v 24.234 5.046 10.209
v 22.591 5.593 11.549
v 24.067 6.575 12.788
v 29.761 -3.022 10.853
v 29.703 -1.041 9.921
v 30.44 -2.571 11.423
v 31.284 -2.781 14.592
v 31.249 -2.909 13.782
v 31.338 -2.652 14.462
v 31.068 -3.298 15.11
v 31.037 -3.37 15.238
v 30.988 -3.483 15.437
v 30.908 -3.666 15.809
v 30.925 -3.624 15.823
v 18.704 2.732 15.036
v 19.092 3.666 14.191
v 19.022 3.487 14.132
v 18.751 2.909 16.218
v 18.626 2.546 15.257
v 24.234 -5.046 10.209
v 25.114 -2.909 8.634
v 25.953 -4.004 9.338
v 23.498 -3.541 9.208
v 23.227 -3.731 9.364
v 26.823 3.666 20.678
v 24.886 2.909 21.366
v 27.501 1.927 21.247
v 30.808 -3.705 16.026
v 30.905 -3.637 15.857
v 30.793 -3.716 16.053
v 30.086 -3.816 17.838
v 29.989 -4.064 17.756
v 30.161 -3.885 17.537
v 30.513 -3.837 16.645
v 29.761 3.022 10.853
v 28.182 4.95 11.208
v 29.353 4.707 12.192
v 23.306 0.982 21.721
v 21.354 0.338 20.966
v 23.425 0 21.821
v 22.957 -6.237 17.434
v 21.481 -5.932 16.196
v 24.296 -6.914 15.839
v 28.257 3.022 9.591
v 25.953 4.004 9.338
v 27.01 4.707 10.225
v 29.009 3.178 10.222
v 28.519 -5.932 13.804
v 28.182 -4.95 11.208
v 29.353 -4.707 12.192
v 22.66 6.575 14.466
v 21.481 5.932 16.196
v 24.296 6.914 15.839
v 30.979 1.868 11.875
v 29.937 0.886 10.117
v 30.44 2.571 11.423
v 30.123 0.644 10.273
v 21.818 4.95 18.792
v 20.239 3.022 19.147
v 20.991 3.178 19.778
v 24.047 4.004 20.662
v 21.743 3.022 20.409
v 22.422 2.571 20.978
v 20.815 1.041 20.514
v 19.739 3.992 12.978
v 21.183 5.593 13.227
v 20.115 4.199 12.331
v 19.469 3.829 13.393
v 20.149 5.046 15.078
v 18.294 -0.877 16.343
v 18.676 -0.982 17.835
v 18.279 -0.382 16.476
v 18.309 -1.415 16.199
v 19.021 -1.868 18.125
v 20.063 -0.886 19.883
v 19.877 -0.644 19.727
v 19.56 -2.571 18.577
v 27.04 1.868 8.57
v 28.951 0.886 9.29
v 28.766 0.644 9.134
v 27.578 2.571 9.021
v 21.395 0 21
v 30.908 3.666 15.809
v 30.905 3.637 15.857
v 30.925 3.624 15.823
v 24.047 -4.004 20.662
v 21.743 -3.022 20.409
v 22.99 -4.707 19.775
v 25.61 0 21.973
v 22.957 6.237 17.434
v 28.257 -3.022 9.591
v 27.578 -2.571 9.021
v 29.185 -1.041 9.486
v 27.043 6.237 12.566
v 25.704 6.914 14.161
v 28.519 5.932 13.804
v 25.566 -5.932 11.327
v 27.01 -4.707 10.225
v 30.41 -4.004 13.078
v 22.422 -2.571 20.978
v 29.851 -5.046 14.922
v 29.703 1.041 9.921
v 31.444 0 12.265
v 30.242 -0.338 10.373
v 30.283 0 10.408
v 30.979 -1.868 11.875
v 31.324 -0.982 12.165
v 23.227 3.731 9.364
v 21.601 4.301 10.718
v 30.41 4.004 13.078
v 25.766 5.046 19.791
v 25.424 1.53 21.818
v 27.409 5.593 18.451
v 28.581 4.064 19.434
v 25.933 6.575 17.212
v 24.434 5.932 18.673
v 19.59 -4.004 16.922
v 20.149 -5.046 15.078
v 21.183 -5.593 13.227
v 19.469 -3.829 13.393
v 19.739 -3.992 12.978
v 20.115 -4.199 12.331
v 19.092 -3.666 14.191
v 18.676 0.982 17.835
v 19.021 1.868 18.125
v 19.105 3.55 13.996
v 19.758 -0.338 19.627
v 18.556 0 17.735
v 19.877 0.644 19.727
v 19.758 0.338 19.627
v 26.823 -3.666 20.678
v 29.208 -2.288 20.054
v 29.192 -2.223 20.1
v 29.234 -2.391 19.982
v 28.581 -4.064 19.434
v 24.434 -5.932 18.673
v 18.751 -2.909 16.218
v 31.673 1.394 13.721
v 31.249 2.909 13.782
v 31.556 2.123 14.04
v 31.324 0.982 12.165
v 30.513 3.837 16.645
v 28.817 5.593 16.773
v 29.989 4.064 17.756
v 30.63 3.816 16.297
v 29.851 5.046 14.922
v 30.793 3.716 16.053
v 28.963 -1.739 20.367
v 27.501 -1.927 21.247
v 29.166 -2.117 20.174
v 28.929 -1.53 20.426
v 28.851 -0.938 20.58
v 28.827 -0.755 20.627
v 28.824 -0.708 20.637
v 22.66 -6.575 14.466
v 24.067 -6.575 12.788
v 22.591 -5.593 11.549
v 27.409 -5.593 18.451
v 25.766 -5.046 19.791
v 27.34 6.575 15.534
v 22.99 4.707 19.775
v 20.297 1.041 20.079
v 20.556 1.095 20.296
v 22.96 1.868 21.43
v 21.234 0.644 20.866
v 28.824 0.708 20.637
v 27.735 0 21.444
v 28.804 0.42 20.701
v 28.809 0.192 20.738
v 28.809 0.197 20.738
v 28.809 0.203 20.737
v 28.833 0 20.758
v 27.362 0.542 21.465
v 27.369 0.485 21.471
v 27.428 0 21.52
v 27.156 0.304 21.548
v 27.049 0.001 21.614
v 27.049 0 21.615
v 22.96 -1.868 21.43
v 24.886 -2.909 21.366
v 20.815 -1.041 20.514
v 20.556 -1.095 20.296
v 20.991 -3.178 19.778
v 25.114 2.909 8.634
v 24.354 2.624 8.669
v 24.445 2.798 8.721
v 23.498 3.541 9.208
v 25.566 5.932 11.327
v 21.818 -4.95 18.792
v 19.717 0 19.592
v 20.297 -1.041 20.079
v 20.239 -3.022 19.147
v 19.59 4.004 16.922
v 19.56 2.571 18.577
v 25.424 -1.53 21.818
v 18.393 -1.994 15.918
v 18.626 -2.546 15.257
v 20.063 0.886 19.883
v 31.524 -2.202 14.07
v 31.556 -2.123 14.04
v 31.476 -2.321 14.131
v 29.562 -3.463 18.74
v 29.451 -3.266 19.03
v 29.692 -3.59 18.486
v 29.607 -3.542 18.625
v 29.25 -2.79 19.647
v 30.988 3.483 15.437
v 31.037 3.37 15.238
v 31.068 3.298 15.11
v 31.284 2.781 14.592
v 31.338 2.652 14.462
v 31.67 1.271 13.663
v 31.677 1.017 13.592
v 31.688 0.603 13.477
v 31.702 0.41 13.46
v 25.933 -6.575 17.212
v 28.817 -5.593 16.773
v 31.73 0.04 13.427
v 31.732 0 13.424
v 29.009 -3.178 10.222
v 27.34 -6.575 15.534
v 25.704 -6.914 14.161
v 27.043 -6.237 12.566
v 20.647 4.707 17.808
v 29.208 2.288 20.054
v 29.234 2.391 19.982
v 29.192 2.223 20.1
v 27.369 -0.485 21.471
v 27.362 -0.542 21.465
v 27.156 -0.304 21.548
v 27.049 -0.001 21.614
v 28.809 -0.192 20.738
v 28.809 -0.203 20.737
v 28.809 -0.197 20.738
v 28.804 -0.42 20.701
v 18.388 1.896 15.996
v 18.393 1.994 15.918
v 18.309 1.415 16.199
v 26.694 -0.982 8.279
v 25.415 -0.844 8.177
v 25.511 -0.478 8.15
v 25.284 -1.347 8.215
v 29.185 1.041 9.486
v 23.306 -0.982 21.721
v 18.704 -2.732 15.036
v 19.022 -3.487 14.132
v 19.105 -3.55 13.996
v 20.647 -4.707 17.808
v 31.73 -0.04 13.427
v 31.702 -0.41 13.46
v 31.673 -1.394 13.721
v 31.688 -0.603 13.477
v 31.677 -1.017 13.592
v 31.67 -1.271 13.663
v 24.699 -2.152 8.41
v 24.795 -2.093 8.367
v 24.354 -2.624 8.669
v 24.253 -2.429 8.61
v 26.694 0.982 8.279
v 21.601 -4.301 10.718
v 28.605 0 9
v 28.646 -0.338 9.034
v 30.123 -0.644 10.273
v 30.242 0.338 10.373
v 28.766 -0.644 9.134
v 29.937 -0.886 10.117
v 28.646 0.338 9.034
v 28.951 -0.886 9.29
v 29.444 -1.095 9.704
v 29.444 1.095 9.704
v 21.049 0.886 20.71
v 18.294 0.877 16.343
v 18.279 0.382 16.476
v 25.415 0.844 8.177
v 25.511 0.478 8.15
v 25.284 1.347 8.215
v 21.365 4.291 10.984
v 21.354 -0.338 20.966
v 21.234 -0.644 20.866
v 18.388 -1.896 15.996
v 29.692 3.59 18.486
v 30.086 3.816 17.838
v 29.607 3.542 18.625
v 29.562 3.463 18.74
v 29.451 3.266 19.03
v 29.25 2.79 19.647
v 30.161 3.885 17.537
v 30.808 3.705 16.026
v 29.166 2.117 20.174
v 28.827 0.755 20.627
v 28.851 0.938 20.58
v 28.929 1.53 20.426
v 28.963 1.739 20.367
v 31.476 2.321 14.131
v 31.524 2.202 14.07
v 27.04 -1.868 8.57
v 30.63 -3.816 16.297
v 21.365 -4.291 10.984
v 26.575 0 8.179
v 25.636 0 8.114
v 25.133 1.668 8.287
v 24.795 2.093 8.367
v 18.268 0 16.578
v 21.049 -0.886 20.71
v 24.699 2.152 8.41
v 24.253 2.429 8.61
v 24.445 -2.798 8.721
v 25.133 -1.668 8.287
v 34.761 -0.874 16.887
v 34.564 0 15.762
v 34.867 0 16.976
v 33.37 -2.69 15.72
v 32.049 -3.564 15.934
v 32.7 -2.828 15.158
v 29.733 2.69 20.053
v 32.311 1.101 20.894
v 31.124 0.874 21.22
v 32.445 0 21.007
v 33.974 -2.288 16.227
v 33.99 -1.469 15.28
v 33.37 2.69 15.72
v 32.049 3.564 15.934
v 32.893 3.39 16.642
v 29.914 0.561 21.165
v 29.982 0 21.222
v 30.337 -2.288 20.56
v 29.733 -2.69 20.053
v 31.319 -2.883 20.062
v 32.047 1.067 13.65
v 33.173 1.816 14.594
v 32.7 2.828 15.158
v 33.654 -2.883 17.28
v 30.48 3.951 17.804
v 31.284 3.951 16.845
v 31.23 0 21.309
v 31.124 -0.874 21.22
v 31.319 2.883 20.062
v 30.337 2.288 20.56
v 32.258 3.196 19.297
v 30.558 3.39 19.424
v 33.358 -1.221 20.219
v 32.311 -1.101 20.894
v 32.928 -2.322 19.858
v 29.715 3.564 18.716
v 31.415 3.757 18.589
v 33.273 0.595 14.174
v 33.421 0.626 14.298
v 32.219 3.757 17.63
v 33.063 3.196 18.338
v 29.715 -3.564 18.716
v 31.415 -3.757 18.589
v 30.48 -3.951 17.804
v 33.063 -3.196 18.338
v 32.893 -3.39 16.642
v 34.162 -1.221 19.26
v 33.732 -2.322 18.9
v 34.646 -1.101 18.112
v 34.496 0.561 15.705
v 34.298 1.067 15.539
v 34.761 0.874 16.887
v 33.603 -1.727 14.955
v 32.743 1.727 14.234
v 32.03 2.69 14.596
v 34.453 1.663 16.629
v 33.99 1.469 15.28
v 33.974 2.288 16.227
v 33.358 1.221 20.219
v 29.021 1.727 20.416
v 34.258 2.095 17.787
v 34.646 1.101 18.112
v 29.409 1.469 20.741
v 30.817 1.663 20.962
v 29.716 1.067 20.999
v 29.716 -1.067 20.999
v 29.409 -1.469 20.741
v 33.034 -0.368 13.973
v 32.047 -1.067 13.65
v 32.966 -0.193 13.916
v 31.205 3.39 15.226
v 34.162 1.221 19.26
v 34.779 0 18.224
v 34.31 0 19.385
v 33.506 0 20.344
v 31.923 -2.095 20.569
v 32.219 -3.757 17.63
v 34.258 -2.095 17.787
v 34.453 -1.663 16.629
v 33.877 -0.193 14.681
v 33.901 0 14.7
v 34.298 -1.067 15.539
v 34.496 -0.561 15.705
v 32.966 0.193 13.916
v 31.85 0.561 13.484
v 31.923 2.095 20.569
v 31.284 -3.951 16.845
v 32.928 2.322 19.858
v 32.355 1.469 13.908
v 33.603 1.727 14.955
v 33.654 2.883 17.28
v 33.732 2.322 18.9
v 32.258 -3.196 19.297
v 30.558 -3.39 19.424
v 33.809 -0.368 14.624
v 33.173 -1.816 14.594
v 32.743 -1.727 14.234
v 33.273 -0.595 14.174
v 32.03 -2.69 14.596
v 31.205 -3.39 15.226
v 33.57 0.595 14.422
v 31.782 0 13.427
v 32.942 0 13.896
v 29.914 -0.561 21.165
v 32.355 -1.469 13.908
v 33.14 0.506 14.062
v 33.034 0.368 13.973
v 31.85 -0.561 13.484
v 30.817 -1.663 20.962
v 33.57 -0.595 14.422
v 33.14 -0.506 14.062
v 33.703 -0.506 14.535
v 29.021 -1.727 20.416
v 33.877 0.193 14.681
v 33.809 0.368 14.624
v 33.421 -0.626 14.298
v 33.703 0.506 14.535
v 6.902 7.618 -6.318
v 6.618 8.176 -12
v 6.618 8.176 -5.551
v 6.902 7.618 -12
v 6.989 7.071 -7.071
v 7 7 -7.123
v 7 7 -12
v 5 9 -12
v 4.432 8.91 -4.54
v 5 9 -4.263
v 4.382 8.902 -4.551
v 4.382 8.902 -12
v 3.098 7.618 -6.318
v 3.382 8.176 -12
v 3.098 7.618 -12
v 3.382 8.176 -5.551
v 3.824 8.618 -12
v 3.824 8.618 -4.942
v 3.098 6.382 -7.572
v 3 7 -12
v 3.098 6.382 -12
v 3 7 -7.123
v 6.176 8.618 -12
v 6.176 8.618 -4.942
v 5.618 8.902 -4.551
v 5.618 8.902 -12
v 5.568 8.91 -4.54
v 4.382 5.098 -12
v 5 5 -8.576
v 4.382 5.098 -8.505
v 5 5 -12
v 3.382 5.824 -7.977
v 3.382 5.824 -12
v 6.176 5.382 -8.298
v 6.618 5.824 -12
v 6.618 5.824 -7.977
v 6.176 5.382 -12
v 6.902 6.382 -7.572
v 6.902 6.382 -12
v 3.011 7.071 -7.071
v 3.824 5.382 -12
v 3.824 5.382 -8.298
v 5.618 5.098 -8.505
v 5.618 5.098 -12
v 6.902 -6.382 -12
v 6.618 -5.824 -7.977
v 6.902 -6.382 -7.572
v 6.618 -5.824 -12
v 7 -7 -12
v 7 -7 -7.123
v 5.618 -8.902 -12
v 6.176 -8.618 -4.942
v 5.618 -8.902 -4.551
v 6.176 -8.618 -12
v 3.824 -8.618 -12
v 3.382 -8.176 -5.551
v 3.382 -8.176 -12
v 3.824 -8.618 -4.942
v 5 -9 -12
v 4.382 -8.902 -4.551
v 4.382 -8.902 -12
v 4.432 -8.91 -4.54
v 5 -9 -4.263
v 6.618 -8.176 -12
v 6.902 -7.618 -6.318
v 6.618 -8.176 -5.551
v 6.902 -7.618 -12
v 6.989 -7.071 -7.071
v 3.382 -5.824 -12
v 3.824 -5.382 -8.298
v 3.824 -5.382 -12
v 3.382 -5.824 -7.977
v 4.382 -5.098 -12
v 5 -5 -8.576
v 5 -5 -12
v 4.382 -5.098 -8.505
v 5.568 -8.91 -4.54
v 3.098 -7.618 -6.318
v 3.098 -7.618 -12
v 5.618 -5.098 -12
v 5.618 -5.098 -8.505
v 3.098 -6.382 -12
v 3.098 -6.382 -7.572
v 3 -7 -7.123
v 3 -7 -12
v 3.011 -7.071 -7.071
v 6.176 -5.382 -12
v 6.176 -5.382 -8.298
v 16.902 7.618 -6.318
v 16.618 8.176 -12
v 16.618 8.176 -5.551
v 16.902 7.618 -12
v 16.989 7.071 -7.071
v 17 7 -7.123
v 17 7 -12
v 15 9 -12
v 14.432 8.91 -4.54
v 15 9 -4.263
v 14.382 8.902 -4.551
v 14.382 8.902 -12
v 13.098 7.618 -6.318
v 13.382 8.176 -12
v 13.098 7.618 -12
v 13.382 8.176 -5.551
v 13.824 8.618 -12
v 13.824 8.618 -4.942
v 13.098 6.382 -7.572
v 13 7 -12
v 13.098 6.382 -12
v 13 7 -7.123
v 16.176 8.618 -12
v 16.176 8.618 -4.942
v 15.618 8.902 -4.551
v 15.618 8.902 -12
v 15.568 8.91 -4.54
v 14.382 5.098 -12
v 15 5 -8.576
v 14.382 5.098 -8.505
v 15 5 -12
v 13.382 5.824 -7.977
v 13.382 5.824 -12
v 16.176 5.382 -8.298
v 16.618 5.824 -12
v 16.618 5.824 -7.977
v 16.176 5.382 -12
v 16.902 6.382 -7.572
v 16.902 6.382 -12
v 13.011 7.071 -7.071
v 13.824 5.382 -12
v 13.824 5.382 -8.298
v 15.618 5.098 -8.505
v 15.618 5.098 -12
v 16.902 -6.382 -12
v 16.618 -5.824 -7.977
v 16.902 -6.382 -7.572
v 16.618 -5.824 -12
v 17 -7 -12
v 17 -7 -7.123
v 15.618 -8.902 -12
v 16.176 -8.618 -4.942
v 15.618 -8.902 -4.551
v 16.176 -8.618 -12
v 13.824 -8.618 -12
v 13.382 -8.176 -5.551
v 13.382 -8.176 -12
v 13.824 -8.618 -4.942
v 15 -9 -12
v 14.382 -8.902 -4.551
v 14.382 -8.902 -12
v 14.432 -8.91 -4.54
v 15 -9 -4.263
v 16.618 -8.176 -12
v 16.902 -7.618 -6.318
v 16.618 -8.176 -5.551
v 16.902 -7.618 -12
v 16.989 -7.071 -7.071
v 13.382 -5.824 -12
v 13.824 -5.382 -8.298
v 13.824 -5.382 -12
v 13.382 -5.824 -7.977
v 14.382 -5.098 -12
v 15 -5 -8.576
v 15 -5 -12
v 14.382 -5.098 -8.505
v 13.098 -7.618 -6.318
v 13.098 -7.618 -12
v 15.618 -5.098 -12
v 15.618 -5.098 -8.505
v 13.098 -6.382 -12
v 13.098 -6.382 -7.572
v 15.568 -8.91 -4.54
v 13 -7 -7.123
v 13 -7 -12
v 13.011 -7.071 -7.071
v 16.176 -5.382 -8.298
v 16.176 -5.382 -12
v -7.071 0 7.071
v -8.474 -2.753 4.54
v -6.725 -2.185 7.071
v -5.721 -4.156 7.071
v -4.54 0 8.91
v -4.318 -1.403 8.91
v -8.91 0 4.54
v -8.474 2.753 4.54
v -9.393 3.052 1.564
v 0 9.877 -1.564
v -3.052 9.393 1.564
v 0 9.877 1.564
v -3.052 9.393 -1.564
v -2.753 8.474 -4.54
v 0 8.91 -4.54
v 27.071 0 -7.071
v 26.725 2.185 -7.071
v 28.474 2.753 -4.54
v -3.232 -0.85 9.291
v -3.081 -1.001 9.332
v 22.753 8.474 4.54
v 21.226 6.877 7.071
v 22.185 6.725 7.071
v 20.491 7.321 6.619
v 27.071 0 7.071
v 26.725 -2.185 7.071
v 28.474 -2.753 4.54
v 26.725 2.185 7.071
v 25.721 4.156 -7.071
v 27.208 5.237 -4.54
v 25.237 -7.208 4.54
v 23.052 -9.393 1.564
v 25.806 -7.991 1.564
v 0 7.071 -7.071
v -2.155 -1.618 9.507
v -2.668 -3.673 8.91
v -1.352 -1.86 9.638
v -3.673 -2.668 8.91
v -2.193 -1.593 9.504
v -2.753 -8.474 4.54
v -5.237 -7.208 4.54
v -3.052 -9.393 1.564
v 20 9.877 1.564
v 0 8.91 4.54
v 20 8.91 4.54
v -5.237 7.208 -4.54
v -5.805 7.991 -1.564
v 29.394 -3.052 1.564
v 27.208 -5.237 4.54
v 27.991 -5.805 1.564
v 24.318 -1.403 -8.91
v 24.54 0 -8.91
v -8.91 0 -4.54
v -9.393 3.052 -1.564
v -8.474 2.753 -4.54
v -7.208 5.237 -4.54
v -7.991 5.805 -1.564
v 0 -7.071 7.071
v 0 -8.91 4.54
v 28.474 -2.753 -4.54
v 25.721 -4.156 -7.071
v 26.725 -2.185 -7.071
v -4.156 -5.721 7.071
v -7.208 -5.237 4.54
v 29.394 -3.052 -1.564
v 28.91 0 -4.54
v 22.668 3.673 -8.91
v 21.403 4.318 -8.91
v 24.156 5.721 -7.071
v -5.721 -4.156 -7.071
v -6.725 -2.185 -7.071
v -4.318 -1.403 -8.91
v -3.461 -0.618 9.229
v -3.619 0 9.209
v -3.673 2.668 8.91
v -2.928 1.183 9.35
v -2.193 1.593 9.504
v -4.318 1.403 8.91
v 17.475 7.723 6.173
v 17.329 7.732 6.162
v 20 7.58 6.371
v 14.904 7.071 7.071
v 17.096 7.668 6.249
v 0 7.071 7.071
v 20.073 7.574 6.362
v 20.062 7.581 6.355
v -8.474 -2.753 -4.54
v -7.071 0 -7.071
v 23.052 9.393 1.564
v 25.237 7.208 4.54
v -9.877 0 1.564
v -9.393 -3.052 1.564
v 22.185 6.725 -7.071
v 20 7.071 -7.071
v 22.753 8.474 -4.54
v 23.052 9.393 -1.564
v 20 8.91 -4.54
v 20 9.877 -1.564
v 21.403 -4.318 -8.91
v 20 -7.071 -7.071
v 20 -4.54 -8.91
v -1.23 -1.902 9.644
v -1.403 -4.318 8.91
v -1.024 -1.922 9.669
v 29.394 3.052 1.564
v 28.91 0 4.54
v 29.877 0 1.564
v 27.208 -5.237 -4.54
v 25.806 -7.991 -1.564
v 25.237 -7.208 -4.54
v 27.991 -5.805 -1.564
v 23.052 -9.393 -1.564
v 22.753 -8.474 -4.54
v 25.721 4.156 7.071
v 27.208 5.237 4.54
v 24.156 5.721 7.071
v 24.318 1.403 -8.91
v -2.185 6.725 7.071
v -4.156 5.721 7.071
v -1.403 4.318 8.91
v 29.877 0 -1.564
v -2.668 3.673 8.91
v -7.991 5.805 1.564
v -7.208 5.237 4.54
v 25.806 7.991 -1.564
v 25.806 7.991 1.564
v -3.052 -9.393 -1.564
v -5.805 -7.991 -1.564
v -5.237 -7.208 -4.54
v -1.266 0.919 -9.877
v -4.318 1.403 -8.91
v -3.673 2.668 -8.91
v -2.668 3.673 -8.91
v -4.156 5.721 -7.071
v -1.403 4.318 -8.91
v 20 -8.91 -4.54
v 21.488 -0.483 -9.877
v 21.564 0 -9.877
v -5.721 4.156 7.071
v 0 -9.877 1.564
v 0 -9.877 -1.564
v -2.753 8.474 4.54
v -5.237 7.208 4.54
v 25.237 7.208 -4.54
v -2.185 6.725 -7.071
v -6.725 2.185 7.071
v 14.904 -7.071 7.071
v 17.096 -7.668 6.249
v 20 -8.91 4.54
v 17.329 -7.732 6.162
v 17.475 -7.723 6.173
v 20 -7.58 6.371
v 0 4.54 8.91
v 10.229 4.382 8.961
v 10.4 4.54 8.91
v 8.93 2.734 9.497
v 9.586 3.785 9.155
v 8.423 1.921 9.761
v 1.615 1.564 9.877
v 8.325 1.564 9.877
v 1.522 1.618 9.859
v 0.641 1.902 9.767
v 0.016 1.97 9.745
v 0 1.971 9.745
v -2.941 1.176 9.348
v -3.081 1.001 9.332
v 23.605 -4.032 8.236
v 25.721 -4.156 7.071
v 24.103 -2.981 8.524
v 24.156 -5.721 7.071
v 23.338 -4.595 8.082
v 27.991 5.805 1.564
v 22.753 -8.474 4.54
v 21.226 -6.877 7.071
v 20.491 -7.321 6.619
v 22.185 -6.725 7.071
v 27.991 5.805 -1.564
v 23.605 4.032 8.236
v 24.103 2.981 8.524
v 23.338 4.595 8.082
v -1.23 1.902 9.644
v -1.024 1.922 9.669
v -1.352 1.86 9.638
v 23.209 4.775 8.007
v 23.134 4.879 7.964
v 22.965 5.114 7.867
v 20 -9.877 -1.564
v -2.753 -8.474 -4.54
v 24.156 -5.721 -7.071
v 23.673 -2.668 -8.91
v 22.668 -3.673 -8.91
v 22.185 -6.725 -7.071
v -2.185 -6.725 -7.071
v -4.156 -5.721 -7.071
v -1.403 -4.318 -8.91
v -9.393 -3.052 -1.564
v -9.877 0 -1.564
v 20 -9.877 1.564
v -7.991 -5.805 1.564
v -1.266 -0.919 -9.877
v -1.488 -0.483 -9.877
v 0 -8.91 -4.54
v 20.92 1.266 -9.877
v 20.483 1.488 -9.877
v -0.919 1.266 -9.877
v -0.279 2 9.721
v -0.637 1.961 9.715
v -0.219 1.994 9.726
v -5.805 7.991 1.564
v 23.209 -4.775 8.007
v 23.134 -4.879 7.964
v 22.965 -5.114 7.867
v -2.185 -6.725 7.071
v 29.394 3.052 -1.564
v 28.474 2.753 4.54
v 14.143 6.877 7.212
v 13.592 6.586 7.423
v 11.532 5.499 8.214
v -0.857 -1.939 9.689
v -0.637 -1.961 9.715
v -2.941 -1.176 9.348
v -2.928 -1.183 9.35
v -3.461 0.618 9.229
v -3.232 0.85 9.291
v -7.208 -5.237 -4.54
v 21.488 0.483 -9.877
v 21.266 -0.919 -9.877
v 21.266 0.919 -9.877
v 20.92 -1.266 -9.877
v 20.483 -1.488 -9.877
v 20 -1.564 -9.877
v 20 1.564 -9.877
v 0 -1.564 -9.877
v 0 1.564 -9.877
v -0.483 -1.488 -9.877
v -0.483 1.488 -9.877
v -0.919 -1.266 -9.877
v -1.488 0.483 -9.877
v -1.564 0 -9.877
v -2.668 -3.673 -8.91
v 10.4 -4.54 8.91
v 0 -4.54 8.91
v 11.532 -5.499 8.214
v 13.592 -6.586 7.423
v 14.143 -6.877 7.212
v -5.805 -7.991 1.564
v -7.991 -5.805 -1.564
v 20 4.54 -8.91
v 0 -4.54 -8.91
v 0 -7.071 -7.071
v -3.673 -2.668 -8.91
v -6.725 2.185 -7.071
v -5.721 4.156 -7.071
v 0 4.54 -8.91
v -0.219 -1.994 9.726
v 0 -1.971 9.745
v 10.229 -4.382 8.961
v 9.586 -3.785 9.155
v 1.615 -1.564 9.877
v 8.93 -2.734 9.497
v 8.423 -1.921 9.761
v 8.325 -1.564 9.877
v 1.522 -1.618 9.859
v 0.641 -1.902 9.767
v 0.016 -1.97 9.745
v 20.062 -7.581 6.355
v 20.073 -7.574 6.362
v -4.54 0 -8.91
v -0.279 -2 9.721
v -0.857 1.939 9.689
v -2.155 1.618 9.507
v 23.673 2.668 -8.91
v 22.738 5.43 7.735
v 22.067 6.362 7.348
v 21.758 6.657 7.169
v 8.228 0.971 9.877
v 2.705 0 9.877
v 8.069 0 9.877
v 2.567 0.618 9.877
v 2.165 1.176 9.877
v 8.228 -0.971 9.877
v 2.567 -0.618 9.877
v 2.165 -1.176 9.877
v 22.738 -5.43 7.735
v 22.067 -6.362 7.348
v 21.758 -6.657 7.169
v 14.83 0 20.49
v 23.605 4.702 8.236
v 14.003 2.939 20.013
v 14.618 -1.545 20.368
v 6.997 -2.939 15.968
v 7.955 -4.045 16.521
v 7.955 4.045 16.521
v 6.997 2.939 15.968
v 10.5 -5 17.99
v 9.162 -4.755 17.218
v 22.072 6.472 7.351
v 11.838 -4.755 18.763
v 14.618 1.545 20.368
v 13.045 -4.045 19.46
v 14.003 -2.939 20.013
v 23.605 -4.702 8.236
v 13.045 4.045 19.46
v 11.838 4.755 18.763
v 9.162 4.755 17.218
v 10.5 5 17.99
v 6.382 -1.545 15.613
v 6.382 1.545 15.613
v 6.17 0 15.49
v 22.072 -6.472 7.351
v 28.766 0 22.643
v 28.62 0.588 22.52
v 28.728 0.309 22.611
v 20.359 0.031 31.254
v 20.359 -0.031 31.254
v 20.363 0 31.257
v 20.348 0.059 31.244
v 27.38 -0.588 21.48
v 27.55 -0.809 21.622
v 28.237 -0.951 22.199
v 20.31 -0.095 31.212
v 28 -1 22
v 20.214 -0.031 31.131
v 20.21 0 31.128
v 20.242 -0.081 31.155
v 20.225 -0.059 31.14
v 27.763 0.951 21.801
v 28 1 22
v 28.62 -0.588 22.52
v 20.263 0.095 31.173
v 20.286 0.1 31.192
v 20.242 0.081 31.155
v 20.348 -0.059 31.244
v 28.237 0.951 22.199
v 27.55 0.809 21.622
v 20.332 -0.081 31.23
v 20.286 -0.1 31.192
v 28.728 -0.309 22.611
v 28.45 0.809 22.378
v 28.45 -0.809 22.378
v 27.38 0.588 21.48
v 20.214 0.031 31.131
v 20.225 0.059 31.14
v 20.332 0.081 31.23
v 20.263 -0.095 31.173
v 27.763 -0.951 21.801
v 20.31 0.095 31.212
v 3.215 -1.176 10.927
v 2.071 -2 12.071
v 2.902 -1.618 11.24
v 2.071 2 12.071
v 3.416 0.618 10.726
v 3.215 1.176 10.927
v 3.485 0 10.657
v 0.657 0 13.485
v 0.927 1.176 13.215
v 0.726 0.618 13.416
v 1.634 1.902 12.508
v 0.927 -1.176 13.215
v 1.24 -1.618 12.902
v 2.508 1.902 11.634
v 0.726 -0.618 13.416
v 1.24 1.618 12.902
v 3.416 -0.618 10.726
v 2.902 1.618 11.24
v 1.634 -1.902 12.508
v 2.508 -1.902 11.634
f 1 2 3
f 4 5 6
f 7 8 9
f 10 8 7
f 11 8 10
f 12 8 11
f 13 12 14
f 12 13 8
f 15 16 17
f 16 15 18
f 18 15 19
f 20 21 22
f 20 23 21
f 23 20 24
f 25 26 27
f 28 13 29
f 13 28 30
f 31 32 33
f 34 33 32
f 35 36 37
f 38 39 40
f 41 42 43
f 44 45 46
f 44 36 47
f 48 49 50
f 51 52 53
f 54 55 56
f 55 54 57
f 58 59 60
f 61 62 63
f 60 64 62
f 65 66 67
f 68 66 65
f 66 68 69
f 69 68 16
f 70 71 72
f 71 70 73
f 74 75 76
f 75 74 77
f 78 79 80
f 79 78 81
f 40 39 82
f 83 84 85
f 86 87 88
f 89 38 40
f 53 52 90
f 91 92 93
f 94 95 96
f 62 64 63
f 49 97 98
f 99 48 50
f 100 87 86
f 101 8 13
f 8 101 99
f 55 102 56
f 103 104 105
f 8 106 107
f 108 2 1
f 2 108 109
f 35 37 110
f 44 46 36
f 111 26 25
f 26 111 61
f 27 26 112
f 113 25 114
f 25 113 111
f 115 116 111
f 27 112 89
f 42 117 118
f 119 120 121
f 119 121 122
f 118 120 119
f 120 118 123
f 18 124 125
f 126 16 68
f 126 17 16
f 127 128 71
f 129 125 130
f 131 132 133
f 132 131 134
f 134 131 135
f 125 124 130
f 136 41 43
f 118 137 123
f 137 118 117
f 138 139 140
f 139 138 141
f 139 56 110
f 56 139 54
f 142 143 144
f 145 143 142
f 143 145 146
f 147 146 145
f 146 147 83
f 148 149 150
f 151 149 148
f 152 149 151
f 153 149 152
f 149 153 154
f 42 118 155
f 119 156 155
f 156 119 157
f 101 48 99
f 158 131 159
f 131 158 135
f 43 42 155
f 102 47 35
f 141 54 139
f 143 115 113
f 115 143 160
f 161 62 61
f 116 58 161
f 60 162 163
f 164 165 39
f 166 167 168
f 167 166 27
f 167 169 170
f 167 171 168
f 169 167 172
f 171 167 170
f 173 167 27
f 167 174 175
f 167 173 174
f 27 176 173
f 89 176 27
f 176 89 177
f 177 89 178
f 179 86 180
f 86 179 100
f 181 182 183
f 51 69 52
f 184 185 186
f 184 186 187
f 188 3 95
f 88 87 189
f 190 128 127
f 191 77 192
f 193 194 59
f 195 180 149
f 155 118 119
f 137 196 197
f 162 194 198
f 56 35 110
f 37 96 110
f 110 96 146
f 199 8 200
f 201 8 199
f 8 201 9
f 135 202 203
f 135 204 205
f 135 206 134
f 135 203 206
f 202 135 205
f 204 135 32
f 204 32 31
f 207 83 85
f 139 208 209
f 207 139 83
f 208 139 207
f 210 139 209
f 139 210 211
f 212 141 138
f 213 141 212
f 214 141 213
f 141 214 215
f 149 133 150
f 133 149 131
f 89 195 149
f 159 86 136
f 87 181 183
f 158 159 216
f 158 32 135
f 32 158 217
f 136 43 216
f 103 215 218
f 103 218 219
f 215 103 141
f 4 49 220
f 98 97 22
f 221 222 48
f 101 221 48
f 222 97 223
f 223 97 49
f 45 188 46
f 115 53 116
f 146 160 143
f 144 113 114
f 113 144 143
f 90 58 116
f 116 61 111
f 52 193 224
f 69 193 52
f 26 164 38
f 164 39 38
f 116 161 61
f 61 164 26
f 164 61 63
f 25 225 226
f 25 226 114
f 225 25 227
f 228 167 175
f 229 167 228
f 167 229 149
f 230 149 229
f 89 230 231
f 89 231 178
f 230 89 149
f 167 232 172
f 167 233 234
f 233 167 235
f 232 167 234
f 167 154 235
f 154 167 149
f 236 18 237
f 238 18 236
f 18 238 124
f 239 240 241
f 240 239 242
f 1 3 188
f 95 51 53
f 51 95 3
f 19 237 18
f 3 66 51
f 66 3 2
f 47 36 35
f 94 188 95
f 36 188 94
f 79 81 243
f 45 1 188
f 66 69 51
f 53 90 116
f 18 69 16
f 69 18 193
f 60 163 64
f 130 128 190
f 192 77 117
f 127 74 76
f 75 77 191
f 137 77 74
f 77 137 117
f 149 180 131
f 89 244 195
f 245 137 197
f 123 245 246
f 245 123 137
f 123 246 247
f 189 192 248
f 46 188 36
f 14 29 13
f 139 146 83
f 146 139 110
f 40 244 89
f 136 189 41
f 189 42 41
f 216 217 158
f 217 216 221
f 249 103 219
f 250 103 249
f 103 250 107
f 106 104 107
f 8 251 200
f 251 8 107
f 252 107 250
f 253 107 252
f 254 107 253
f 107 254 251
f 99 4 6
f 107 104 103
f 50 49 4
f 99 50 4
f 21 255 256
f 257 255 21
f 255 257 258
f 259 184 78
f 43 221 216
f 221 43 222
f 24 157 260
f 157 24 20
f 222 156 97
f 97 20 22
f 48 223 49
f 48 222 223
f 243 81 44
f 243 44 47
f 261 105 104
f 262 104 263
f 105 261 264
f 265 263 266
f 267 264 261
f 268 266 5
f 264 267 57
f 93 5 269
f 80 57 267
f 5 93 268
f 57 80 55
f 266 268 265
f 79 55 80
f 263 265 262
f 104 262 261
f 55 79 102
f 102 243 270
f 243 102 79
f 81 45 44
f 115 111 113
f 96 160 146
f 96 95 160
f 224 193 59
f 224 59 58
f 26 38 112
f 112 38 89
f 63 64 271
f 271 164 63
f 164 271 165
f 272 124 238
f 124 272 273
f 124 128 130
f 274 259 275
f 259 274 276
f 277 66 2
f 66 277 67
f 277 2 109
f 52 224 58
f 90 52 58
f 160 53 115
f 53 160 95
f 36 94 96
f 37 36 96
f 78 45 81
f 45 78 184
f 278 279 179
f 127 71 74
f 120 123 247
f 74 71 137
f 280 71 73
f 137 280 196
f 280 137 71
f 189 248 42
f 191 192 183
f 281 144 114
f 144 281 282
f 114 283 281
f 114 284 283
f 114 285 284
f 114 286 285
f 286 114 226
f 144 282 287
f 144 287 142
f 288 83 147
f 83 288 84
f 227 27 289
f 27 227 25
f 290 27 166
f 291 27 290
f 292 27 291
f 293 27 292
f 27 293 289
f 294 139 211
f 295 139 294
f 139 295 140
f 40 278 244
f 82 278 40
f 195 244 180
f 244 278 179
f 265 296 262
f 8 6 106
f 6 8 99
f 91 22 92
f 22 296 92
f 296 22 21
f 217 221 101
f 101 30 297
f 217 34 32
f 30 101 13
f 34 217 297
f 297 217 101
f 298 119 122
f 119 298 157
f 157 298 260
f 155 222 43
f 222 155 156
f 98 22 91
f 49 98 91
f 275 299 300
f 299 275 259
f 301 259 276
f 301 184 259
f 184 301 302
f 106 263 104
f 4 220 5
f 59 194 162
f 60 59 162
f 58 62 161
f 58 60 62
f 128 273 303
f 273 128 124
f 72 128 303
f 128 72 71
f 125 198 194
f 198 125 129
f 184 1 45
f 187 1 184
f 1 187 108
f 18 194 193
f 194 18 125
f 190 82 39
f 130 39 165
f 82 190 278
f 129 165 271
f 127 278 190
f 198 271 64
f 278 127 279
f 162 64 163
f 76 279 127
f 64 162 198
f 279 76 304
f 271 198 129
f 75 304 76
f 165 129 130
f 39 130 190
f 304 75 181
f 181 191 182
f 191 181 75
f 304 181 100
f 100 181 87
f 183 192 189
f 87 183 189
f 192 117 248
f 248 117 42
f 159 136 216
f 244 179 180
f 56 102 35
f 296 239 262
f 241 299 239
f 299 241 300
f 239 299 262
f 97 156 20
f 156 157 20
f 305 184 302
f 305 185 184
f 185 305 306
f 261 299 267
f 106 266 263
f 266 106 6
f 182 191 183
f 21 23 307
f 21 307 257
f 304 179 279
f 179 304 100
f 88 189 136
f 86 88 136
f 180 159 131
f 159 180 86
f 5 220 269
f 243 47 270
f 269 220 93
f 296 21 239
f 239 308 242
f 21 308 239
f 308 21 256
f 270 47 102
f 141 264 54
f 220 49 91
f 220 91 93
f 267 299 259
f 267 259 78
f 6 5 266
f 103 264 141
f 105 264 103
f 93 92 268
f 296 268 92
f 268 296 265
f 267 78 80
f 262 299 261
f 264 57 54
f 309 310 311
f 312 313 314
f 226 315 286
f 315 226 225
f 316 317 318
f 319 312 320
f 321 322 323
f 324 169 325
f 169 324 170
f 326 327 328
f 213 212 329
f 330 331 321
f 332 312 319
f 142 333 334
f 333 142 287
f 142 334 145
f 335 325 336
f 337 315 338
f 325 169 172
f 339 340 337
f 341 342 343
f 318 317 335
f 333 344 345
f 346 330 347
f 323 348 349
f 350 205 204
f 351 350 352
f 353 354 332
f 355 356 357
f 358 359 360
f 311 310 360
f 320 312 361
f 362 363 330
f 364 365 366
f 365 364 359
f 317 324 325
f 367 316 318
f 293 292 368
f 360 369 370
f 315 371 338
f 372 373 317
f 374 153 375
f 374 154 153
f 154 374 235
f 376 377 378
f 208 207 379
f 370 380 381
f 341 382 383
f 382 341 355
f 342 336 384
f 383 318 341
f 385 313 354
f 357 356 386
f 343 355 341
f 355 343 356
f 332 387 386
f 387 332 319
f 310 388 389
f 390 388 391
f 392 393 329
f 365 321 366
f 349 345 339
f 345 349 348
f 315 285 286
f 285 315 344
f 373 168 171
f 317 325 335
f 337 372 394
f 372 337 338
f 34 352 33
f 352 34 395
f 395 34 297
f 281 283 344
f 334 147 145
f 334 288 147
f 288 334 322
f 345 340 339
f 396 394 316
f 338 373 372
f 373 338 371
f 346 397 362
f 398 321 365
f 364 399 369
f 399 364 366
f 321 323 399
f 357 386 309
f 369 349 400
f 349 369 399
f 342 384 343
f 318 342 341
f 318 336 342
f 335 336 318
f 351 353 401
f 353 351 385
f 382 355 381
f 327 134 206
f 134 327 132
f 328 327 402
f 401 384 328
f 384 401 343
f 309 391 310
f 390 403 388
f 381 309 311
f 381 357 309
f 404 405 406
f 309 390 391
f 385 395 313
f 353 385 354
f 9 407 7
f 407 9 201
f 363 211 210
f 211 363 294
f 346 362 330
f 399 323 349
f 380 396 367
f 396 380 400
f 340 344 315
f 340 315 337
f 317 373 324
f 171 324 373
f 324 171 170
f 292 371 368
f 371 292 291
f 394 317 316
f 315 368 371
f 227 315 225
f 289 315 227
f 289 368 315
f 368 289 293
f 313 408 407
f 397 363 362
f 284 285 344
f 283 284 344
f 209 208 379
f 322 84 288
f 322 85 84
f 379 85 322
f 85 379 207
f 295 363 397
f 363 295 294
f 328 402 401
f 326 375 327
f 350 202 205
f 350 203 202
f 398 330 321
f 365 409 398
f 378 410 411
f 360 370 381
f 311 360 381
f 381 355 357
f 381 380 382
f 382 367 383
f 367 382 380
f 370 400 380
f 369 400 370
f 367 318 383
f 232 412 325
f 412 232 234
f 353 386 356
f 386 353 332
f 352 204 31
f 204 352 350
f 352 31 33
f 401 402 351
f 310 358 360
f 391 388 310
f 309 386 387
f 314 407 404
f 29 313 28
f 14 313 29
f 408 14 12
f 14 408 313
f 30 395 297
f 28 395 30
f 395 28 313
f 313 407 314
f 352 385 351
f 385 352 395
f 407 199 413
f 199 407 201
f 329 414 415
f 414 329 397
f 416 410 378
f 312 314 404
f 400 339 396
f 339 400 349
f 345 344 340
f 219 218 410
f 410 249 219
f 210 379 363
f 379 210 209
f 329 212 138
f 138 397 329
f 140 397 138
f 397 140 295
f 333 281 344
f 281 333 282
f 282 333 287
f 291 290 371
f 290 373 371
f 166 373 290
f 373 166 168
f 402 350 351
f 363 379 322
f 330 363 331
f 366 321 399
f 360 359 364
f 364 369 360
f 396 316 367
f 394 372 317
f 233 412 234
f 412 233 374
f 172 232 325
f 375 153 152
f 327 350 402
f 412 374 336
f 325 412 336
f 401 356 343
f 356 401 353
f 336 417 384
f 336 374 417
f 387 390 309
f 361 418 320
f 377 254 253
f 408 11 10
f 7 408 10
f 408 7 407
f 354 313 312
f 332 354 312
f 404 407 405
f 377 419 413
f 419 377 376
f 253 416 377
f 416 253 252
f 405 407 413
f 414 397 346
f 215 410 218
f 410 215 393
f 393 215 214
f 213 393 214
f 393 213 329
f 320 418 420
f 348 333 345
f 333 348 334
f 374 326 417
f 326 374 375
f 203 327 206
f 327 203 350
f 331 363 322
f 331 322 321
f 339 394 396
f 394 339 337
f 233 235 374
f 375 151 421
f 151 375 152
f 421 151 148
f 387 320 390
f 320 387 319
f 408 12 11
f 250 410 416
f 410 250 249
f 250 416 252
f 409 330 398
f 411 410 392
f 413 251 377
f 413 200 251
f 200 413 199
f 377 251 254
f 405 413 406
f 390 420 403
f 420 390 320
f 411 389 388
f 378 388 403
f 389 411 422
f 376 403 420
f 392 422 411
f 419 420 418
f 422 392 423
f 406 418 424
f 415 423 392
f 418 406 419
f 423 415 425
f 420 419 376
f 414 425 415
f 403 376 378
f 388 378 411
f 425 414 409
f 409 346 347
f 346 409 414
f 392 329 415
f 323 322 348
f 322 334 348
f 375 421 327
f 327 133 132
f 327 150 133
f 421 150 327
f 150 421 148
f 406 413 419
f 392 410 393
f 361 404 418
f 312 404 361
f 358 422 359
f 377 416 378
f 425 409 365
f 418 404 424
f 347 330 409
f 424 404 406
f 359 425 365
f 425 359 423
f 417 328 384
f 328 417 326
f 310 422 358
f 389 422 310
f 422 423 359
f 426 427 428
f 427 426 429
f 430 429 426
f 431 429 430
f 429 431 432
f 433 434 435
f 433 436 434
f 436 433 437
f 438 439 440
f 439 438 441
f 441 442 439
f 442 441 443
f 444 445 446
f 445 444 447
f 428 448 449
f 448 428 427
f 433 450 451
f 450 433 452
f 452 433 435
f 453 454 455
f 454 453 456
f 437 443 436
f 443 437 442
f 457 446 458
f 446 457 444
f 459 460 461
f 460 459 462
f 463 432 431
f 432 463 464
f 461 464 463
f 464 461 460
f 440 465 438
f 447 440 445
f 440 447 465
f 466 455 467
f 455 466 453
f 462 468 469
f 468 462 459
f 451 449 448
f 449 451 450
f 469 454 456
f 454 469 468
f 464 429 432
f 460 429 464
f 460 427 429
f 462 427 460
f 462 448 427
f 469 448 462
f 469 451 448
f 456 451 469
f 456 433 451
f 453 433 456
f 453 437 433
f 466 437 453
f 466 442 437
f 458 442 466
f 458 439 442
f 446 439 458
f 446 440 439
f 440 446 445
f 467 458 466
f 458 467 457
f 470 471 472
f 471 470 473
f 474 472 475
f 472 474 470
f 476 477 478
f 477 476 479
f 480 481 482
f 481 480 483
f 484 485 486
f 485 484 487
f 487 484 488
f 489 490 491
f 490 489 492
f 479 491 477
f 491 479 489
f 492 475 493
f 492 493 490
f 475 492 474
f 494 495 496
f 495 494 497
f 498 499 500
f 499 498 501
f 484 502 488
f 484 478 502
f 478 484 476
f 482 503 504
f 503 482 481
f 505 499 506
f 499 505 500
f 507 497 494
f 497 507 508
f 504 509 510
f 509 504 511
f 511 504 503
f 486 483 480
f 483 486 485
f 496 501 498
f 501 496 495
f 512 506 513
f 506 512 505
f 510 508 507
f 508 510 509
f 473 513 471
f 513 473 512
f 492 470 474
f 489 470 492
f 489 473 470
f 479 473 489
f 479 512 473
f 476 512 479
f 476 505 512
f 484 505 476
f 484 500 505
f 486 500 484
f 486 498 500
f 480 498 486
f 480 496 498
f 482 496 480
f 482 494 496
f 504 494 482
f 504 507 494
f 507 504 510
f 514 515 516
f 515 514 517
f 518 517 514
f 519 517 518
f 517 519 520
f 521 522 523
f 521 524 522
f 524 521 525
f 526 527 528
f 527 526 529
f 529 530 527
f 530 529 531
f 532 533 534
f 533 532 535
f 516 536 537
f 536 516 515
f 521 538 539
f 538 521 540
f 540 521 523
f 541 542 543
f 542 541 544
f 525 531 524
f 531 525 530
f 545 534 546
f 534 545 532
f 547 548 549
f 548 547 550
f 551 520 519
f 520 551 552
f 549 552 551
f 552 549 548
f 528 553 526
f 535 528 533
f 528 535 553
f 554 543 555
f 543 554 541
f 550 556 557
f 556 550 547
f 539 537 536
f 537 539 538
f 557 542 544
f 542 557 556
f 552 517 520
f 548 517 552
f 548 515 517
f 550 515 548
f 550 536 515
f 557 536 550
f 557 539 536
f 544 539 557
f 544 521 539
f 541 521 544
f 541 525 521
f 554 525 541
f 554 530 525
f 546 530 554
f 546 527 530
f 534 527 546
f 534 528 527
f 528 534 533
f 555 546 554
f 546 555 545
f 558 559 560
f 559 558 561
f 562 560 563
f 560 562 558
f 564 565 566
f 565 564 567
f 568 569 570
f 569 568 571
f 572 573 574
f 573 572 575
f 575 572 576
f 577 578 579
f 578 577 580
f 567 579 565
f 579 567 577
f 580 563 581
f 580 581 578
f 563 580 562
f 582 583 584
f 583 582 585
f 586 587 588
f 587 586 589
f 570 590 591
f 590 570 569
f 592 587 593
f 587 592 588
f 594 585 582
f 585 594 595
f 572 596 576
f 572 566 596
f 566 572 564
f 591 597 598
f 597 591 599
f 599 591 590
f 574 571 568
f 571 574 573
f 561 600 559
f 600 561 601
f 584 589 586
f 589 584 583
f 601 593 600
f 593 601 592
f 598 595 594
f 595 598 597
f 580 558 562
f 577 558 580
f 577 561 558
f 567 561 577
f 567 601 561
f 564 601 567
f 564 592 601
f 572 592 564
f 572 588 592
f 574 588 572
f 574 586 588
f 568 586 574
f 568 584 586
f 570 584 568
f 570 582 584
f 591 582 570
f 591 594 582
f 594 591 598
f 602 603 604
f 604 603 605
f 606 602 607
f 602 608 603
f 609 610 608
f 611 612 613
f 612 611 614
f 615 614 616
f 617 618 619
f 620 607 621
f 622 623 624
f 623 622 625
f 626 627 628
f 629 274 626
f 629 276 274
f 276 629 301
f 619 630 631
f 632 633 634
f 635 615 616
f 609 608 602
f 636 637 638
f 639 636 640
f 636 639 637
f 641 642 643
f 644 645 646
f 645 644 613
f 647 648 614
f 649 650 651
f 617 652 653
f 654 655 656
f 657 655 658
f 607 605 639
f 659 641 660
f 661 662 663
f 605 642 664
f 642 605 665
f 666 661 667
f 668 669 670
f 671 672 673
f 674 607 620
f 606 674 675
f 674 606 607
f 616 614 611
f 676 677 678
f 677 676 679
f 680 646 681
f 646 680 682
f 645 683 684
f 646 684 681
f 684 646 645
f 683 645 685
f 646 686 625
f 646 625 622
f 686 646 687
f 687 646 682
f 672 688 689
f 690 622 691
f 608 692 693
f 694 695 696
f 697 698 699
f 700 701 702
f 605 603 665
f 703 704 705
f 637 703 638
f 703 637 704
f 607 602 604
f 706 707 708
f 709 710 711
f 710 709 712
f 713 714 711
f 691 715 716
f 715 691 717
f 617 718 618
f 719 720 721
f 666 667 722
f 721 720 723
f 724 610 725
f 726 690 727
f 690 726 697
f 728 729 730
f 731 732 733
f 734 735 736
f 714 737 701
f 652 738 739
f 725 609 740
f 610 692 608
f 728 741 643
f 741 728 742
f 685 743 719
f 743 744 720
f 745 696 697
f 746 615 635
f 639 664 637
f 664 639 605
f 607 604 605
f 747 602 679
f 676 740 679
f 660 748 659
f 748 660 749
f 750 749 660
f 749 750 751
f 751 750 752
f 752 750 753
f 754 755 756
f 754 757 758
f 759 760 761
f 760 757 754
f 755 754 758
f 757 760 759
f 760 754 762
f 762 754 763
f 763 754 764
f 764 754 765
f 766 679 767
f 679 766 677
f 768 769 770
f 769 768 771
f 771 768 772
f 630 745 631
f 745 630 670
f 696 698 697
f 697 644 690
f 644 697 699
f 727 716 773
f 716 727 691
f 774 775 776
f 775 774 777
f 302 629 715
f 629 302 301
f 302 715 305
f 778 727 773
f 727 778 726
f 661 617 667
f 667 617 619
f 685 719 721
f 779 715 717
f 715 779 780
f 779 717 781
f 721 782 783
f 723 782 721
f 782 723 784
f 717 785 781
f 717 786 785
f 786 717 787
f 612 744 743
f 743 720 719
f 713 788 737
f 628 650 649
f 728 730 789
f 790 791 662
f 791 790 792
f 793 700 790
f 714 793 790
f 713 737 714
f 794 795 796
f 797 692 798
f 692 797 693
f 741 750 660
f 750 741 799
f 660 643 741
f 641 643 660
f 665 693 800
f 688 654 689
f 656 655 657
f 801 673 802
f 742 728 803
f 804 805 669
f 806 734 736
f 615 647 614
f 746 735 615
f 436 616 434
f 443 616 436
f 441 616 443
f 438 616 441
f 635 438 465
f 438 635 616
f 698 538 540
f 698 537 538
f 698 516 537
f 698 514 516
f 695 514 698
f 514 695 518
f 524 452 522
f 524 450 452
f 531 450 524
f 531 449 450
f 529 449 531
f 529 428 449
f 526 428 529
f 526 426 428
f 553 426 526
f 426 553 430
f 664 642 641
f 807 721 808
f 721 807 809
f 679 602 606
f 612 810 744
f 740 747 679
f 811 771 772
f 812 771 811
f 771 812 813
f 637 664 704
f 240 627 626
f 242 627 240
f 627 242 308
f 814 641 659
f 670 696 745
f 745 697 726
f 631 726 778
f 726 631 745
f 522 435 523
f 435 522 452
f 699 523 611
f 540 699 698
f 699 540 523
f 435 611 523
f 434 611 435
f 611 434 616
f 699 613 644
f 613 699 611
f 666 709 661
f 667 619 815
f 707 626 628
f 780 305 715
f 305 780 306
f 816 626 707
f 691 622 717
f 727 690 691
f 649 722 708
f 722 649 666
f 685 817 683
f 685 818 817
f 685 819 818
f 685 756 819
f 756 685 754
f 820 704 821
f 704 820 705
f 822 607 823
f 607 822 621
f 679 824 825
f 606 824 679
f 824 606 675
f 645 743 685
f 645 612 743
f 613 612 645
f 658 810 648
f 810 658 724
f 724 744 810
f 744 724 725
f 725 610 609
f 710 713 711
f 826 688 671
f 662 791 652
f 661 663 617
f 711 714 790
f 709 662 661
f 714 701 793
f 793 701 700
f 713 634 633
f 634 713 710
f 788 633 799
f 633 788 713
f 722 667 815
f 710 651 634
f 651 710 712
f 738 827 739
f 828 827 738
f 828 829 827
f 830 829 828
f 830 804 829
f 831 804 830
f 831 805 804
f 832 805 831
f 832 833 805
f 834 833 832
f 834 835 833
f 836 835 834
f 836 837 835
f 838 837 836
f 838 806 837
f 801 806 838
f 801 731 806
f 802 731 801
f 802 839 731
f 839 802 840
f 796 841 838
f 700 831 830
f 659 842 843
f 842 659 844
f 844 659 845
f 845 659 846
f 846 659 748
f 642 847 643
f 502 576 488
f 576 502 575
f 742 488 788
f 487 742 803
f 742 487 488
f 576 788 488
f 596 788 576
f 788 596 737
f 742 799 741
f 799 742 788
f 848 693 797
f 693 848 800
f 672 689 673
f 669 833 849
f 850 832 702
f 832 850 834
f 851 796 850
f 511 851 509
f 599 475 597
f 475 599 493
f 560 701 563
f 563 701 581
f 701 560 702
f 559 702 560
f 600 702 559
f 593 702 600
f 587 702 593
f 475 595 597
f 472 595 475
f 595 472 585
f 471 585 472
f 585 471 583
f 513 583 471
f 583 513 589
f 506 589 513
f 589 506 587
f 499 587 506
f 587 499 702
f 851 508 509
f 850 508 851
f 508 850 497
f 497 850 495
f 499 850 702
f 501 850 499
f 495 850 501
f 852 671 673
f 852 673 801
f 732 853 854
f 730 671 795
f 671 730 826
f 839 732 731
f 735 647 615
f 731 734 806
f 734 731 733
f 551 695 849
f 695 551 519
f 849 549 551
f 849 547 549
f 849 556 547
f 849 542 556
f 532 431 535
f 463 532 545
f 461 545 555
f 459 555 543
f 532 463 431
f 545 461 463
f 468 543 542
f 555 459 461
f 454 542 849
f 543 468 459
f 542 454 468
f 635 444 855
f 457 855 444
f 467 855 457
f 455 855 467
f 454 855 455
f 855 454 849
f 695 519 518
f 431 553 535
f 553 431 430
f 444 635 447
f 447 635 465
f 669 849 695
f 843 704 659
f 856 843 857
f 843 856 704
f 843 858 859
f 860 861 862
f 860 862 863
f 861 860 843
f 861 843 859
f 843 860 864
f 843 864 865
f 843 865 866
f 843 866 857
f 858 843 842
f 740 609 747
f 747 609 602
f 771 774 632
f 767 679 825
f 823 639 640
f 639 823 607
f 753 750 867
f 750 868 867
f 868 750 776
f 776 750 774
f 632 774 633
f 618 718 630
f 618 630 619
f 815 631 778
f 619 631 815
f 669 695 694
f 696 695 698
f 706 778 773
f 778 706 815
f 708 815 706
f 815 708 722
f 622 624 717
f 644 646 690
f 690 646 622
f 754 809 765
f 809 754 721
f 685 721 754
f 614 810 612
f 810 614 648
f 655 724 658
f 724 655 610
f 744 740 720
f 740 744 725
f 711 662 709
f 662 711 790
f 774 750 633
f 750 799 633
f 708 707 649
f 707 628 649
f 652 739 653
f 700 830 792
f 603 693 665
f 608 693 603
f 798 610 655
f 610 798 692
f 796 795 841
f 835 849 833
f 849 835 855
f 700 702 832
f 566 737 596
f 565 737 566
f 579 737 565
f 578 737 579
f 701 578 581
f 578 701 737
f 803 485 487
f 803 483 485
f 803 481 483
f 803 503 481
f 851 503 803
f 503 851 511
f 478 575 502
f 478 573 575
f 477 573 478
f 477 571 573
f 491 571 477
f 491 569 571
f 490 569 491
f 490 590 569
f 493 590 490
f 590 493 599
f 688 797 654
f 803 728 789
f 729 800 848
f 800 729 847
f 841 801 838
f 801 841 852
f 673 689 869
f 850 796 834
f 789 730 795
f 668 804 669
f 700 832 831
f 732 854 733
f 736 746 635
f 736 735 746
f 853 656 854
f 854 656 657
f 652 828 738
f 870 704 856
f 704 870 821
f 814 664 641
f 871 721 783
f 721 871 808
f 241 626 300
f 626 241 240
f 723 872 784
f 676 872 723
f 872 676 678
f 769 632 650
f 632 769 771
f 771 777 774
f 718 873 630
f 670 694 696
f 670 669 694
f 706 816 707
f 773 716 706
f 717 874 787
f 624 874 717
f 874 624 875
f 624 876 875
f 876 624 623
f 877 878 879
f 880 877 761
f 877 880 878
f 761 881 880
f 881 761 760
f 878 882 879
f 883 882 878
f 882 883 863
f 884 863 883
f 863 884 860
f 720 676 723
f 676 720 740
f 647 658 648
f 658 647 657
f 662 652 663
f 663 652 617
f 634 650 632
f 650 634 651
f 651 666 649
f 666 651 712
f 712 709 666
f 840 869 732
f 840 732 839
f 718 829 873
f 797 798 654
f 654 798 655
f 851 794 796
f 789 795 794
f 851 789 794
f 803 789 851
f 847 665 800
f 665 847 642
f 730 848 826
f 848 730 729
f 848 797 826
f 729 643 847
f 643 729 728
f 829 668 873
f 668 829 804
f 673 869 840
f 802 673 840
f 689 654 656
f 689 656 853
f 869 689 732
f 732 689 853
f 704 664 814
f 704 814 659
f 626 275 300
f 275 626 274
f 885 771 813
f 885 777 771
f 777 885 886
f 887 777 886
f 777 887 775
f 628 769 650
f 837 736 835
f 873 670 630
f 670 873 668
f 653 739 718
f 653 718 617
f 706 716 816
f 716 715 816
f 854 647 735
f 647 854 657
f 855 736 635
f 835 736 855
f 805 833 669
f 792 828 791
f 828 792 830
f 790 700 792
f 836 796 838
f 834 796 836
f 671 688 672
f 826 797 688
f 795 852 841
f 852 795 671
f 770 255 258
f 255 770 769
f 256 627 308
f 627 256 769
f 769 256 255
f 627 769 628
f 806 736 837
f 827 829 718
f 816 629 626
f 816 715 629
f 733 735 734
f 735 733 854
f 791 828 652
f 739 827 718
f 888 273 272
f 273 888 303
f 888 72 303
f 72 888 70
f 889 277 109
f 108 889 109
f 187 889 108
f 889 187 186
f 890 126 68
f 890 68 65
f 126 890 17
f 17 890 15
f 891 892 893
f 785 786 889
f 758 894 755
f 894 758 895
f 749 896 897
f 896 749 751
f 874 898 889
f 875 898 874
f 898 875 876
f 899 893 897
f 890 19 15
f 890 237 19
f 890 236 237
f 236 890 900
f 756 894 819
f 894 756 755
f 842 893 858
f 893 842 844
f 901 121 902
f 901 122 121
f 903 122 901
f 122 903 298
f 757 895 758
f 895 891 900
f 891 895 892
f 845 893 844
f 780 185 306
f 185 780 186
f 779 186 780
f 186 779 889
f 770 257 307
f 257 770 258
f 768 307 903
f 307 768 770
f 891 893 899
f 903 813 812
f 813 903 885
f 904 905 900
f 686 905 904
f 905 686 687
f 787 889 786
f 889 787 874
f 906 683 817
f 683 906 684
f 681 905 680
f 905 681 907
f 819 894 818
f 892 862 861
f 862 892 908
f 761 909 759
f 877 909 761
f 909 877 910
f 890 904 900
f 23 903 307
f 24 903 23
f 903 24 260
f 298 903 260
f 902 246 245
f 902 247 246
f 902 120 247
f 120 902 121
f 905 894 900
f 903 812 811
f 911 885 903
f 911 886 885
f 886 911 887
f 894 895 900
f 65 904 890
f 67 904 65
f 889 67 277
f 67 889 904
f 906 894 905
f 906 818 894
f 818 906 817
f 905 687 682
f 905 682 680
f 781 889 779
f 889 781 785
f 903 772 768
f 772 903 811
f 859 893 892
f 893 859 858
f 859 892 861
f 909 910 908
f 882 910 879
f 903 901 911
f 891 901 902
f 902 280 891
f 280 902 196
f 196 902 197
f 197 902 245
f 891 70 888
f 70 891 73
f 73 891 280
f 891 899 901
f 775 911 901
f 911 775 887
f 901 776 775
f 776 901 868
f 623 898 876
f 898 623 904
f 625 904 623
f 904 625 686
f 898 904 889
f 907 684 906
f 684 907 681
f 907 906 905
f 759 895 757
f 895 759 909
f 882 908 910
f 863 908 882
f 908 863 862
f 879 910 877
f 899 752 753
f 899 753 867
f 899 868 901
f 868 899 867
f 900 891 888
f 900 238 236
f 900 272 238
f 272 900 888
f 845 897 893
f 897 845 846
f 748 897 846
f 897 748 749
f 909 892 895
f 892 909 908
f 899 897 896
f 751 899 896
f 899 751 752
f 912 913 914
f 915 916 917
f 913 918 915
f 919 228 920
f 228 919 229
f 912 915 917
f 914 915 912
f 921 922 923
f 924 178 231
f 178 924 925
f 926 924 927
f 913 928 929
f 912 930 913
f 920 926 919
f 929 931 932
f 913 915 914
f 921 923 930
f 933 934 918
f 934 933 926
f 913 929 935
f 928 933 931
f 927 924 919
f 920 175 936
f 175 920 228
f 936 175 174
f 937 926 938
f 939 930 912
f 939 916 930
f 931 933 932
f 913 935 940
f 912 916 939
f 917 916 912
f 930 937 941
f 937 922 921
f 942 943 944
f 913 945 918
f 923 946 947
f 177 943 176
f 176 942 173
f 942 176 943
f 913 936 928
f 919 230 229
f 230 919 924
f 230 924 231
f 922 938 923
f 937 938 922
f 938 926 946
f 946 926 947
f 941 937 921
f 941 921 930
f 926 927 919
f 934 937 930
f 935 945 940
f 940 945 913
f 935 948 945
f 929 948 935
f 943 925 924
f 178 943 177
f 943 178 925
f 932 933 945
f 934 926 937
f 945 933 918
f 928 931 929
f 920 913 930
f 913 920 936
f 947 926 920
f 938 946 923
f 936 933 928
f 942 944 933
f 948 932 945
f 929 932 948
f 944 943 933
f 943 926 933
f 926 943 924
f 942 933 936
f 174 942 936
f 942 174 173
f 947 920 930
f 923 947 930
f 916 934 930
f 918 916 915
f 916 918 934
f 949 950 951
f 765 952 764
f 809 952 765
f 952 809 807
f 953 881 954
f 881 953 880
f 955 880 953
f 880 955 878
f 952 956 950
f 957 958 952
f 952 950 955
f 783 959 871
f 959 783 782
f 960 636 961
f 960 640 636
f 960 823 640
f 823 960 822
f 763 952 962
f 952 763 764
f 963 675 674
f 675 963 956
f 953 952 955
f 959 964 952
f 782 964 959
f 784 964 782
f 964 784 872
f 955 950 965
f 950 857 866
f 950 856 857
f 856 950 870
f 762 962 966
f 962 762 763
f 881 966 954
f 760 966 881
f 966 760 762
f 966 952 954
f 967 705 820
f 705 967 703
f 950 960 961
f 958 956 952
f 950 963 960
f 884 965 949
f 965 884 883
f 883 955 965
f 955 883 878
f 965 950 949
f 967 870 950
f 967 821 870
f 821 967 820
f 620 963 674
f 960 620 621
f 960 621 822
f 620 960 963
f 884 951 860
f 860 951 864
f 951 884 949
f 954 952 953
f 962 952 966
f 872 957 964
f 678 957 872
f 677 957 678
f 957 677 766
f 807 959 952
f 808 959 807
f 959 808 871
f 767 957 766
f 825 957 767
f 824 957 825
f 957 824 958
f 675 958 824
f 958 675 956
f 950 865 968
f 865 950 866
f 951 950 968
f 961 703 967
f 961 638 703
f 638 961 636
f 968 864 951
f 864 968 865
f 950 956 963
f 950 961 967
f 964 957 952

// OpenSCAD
// Unicorn for 2026-07-23
$fn = 20;

module unicorn() {
    // Body
    color("white")
    hull() {
        translate([0, 0, 0]) sphere(r=10);
        translate([20, 0, 0]) sphere(r=10);
    }

    // Neck
    color("white")
    translate([18, 0, 5])
    rotate([0, -30, 0])
    cylinder(h=15, r1=8, r2=5);

    // Head
    color("white")
    translate([25, 0, 15])
    rotate([0, -40, 0])
    union() {
        sphere(r=7);
        // Snout
        translate([6, 0, -2])
        sphere(r=4);
    }

    // Horn
    color("gold")
    translate([28, 0, 22])
    rotate([0, -40, 0])
    cylinder(h=12, r1=1, r2=0.1);

    // Legs
    module leg() {
        cylinder(h=12, r=2);
    }

    color("white") {
        translate([5, 7, -12]) leg();
        translate([5, -7, -12]) leg();
        translate([15, 7, -12]) leg();
        translate([15, -7, -12]) leg();
    }

    // Tail
    color("white")
    translate([-5, 0, 5])
    rotate([0, 45, 0])
    cylinder(h=10, r=2);
}

unicorn();
